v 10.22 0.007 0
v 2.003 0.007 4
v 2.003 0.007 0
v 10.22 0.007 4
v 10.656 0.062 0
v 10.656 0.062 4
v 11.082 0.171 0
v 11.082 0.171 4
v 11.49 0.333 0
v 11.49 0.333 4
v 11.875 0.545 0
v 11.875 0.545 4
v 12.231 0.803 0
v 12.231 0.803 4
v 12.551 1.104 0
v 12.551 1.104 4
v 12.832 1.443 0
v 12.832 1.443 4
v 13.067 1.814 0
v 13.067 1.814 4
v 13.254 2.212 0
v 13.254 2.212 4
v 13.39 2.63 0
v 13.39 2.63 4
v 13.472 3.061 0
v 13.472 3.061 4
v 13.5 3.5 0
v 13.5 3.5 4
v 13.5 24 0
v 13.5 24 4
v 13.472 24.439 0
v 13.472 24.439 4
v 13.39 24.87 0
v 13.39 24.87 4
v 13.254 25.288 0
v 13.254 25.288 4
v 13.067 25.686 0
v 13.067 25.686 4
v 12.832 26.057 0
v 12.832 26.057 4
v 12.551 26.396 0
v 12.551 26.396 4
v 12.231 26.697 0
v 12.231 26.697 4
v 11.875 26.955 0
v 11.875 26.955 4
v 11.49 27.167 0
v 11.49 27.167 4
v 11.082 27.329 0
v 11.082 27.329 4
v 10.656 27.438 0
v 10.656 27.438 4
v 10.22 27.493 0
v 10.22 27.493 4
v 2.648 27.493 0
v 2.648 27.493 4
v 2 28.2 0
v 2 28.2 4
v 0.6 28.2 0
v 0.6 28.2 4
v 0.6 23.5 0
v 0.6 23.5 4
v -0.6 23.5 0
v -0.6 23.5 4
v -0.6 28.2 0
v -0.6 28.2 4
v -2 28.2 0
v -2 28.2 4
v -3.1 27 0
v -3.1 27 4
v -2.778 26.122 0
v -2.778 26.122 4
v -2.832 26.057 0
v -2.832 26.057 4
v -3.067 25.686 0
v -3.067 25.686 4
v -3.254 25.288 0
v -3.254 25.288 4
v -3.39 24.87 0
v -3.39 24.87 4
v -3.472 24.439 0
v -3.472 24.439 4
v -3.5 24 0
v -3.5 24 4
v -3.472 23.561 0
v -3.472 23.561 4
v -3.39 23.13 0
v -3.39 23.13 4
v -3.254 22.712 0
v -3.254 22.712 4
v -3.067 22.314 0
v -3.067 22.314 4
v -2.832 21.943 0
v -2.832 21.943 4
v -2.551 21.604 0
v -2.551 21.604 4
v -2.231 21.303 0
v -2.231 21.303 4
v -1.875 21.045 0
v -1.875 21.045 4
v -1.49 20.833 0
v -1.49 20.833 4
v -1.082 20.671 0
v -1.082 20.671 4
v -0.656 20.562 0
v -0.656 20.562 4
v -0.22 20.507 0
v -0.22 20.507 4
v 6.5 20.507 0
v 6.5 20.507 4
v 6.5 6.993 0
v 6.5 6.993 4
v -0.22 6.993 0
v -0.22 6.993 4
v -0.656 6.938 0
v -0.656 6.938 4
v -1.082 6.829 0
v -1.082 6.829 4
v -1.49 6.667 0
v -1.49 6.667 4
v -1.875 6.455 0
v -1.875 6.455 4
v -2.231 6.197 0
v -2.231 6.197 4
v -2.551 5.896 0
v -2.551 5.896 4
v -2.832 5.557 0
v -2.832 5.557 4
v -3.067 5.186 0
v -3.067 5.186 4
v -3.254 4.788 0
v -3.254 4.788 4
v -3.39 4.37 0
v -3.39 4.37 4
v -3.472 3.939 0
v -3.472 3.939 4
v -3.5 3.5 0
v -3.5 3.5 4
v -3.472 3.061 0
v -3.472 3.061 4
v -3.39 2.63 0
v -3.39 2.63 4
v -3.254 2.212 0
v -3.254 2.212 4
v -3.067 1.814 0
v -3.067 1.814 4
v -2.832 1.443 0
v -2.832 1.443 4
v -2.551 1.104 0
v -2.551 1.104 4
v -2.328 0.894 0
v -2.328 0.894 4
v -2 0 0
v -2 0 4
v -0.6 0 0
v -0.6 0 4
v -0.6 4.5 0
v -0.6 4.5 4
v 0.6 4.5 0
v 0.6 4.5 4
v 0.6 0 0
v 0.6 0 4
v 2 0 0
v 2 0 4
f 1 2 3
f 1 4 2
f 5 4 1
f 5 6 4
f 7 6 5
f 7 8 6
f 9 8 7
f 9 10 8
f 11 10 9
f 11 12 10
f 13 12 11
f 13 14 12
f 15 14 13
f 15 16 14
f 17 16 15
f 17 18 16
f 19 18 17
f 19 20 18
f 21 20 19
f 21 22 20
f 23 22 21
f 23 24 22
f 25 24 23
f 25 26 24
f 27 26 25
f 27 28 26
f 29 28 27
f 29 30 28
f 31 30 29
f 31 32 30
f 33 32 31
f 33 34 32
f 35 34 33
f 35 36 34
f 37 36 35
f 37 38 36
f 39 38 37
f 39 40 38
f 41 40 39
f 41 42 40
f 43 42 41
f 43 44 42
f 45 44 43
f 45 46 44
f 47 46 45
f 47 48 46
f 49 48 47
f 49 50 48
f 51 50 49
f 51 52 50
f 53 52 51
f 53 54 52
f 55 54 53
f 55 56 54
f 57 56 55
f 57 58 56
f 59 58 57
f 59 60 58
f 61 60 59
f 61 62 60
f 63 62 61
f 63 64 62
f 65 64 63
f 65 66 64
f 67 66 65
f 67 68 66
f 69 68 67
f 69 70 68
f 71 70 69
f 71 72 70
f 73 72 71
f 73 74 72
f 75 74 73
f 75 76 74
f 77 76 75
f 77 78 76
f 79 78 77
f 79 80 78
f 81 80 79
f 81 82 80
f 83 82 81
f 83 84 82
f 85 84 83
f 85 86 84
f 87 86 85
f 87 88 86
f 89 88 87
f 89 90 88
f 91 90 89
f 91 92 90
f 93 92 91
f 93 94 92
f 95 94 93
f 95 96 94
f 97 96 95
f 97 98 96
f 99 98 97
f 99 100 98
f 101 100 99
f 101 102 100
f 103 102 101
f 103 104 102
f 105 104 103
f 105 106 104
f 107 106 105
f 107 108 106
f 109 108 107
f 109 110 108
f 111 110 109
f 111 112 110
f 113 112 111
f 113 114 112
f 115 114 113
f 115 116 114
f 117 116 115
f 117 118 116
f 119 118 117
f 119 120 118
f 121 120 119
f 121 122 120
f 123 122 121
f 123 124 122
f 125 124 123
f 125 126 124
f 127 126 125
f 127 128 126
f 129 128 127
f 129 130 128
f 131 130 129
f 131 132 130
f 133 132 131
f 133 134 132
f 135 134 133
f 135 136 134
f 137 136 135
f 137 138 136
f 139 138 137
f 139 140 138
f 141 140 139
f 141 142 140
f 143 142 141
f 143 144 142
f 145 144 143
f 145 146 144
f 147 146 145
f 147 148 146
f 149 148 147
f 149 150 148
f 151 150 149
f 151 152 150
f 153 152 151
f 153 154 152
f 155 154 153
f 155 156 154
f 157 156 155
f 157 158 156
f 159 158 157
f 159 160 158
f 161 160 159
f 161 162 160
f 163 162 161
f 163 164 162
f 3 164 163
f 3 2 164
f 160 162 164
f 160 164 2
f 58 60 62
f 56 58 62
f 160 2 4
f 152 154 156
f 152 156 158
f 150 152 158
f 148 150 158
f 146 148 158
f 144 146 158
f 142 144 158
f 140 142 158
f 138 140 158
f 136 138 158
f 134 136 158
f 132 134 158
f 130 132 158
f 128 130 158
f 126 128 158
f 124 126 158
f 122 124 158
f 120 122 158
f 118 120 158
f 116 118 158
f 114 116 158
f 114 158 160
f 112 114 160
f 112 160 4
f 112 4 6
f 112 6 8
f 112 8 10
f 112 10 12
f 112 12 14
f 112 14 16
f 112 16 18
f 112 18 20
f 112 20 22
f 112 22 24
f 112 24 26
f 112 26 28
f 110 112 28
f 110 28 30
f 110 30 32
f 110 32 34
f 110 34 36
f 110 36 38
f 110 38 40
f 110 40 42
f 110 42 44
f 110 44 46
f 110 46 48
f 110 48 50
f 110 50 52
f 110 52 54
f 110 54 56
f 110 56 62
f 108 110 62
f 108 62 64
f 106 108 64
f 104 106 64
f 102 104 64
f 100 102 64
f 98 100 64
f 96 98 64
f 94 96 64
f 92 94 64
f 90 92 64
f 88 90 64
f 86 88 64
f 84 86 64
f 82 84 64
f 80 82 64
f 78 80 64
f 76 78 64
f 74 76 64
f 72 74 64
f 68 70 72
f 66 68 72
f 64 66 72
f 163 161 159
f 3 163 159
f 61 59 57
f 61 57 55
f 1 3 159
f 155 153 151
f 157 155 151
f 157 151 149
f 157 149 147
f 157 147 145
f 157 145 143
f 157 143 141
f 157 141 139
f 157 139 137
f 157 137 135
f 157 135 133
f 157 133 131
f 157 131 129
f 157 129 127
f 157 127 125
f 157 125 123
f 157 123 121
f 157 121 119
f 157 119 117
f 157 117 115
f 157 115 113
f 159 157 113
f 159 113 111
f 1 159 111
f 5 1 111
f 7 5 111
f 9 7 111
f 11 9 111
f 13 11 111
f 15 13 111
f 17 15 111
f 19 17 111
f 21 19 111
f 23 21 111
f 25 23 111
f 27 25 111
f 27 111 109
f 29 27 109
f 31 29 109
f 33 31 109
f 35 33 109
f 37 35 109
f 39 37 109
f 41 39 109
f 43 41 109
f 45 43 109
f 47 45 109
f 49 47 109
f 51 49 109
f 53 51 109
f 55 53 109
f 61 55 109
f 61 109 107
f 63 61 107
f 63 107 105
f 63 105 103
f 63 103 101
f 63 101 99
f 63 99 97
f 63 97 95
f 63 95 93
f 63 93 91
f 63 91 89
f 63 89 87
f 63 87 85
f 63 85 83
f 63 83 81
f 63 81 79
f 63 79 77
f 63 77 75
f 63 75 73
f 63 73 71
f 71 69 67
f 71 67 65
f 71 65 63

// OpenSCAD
// ====================================================================
// [PRINT 03] Classic C-Hanger Arm with Integrated Barb-Snap Tabs
//
// Features:
// - TOP BARB TAB: Snaps into Cable Glider Sled Runner (04_trolley_carriage)
// - BOTTOM BARB TAB: Snaps into Gondola Roof Clevis (01_gondola_single_piece)
// - Heavy-duty wedge arrowhead tabs with 1.2mm center flex-slit.
// - ZERO TINY PROTRUSIONS / PINS! ZERO SCREWS! ZERO SUPPORTS NEEDED!
// - Sits 100% flat on build plate at Z = 0.
// ====================================================================

$fn = 50;

hanger_height = 24.0;  // Vertical clearance
hanger_offset = 10.0;  // Side offset for cable line
hanger_th     = 4.0;   // Arm thickness
barb_width    = 6.2;   // Width of arrow-head barb tip
barb_neck     = 4.0;   // Width of barb neck

module hanger_arm_barb_2d() {
    difference() {
        union() {
            // Bottom Barb Tab (Snaps into Roof of Gondola 01)
            polygon([
                [-barb_neck/2, 0],
                [-barb_width/2, 3.0],
                [-barb_neck/2, 4.2],
                [barb_neck/2, 4.2],
                [barb_width/2, 3.0],
                [barb_neck/2, 0]
            ]);

            // Lower horizontal bridge
            hull() {
                translate([0, 3.5]) circle(d = 7.0);
                translate([hanger_offset, 3.5]) circle(d = 7.0);
            }
            // Vertical C-stem
            hull() {
                translate([hanger_offset, 3.5]) circle(d = 7.0);
                translate([hanger_offset, hanger_height]) circle(d = 7.0);
            }
            // Top horizontal bridge
            hull() {
                translate([hanger_offset, hanger_height]) circle(d = 7.0);
                translate([0, hanger_height]) circle(d = 7.0);
            }

            // Top Barb Tab (Snaps into Trolley Glider Carriage 04)
            translate([0, hanger_height])
                polygon([
                    [-barb_neck/2, 0],
                    [-barb_width/2, 3.0],
                    [-barb_neck/2, 4.2],
                    [barb_neck/2, 4.2],
                    [barb_width/2, 3.0],
                    [barb_neck/2, 0]
                ]);
        }

        // Central flexing slits (gives barbs 1.2mm spring flex space)
        translate([0, 2.0])
            square([1.2, 5.0], center = true);
        translate([0, hanger_height + 2.0])
            square([1.2, 5.0], center = true);
    }
}

module hanger_arm_snap_print() {
    linear_extrude(height = hanger_th)
        hanger_arm_barb_2d();
}

// Render flat on bed at Z = 0
hanger_arm_snap_print();
